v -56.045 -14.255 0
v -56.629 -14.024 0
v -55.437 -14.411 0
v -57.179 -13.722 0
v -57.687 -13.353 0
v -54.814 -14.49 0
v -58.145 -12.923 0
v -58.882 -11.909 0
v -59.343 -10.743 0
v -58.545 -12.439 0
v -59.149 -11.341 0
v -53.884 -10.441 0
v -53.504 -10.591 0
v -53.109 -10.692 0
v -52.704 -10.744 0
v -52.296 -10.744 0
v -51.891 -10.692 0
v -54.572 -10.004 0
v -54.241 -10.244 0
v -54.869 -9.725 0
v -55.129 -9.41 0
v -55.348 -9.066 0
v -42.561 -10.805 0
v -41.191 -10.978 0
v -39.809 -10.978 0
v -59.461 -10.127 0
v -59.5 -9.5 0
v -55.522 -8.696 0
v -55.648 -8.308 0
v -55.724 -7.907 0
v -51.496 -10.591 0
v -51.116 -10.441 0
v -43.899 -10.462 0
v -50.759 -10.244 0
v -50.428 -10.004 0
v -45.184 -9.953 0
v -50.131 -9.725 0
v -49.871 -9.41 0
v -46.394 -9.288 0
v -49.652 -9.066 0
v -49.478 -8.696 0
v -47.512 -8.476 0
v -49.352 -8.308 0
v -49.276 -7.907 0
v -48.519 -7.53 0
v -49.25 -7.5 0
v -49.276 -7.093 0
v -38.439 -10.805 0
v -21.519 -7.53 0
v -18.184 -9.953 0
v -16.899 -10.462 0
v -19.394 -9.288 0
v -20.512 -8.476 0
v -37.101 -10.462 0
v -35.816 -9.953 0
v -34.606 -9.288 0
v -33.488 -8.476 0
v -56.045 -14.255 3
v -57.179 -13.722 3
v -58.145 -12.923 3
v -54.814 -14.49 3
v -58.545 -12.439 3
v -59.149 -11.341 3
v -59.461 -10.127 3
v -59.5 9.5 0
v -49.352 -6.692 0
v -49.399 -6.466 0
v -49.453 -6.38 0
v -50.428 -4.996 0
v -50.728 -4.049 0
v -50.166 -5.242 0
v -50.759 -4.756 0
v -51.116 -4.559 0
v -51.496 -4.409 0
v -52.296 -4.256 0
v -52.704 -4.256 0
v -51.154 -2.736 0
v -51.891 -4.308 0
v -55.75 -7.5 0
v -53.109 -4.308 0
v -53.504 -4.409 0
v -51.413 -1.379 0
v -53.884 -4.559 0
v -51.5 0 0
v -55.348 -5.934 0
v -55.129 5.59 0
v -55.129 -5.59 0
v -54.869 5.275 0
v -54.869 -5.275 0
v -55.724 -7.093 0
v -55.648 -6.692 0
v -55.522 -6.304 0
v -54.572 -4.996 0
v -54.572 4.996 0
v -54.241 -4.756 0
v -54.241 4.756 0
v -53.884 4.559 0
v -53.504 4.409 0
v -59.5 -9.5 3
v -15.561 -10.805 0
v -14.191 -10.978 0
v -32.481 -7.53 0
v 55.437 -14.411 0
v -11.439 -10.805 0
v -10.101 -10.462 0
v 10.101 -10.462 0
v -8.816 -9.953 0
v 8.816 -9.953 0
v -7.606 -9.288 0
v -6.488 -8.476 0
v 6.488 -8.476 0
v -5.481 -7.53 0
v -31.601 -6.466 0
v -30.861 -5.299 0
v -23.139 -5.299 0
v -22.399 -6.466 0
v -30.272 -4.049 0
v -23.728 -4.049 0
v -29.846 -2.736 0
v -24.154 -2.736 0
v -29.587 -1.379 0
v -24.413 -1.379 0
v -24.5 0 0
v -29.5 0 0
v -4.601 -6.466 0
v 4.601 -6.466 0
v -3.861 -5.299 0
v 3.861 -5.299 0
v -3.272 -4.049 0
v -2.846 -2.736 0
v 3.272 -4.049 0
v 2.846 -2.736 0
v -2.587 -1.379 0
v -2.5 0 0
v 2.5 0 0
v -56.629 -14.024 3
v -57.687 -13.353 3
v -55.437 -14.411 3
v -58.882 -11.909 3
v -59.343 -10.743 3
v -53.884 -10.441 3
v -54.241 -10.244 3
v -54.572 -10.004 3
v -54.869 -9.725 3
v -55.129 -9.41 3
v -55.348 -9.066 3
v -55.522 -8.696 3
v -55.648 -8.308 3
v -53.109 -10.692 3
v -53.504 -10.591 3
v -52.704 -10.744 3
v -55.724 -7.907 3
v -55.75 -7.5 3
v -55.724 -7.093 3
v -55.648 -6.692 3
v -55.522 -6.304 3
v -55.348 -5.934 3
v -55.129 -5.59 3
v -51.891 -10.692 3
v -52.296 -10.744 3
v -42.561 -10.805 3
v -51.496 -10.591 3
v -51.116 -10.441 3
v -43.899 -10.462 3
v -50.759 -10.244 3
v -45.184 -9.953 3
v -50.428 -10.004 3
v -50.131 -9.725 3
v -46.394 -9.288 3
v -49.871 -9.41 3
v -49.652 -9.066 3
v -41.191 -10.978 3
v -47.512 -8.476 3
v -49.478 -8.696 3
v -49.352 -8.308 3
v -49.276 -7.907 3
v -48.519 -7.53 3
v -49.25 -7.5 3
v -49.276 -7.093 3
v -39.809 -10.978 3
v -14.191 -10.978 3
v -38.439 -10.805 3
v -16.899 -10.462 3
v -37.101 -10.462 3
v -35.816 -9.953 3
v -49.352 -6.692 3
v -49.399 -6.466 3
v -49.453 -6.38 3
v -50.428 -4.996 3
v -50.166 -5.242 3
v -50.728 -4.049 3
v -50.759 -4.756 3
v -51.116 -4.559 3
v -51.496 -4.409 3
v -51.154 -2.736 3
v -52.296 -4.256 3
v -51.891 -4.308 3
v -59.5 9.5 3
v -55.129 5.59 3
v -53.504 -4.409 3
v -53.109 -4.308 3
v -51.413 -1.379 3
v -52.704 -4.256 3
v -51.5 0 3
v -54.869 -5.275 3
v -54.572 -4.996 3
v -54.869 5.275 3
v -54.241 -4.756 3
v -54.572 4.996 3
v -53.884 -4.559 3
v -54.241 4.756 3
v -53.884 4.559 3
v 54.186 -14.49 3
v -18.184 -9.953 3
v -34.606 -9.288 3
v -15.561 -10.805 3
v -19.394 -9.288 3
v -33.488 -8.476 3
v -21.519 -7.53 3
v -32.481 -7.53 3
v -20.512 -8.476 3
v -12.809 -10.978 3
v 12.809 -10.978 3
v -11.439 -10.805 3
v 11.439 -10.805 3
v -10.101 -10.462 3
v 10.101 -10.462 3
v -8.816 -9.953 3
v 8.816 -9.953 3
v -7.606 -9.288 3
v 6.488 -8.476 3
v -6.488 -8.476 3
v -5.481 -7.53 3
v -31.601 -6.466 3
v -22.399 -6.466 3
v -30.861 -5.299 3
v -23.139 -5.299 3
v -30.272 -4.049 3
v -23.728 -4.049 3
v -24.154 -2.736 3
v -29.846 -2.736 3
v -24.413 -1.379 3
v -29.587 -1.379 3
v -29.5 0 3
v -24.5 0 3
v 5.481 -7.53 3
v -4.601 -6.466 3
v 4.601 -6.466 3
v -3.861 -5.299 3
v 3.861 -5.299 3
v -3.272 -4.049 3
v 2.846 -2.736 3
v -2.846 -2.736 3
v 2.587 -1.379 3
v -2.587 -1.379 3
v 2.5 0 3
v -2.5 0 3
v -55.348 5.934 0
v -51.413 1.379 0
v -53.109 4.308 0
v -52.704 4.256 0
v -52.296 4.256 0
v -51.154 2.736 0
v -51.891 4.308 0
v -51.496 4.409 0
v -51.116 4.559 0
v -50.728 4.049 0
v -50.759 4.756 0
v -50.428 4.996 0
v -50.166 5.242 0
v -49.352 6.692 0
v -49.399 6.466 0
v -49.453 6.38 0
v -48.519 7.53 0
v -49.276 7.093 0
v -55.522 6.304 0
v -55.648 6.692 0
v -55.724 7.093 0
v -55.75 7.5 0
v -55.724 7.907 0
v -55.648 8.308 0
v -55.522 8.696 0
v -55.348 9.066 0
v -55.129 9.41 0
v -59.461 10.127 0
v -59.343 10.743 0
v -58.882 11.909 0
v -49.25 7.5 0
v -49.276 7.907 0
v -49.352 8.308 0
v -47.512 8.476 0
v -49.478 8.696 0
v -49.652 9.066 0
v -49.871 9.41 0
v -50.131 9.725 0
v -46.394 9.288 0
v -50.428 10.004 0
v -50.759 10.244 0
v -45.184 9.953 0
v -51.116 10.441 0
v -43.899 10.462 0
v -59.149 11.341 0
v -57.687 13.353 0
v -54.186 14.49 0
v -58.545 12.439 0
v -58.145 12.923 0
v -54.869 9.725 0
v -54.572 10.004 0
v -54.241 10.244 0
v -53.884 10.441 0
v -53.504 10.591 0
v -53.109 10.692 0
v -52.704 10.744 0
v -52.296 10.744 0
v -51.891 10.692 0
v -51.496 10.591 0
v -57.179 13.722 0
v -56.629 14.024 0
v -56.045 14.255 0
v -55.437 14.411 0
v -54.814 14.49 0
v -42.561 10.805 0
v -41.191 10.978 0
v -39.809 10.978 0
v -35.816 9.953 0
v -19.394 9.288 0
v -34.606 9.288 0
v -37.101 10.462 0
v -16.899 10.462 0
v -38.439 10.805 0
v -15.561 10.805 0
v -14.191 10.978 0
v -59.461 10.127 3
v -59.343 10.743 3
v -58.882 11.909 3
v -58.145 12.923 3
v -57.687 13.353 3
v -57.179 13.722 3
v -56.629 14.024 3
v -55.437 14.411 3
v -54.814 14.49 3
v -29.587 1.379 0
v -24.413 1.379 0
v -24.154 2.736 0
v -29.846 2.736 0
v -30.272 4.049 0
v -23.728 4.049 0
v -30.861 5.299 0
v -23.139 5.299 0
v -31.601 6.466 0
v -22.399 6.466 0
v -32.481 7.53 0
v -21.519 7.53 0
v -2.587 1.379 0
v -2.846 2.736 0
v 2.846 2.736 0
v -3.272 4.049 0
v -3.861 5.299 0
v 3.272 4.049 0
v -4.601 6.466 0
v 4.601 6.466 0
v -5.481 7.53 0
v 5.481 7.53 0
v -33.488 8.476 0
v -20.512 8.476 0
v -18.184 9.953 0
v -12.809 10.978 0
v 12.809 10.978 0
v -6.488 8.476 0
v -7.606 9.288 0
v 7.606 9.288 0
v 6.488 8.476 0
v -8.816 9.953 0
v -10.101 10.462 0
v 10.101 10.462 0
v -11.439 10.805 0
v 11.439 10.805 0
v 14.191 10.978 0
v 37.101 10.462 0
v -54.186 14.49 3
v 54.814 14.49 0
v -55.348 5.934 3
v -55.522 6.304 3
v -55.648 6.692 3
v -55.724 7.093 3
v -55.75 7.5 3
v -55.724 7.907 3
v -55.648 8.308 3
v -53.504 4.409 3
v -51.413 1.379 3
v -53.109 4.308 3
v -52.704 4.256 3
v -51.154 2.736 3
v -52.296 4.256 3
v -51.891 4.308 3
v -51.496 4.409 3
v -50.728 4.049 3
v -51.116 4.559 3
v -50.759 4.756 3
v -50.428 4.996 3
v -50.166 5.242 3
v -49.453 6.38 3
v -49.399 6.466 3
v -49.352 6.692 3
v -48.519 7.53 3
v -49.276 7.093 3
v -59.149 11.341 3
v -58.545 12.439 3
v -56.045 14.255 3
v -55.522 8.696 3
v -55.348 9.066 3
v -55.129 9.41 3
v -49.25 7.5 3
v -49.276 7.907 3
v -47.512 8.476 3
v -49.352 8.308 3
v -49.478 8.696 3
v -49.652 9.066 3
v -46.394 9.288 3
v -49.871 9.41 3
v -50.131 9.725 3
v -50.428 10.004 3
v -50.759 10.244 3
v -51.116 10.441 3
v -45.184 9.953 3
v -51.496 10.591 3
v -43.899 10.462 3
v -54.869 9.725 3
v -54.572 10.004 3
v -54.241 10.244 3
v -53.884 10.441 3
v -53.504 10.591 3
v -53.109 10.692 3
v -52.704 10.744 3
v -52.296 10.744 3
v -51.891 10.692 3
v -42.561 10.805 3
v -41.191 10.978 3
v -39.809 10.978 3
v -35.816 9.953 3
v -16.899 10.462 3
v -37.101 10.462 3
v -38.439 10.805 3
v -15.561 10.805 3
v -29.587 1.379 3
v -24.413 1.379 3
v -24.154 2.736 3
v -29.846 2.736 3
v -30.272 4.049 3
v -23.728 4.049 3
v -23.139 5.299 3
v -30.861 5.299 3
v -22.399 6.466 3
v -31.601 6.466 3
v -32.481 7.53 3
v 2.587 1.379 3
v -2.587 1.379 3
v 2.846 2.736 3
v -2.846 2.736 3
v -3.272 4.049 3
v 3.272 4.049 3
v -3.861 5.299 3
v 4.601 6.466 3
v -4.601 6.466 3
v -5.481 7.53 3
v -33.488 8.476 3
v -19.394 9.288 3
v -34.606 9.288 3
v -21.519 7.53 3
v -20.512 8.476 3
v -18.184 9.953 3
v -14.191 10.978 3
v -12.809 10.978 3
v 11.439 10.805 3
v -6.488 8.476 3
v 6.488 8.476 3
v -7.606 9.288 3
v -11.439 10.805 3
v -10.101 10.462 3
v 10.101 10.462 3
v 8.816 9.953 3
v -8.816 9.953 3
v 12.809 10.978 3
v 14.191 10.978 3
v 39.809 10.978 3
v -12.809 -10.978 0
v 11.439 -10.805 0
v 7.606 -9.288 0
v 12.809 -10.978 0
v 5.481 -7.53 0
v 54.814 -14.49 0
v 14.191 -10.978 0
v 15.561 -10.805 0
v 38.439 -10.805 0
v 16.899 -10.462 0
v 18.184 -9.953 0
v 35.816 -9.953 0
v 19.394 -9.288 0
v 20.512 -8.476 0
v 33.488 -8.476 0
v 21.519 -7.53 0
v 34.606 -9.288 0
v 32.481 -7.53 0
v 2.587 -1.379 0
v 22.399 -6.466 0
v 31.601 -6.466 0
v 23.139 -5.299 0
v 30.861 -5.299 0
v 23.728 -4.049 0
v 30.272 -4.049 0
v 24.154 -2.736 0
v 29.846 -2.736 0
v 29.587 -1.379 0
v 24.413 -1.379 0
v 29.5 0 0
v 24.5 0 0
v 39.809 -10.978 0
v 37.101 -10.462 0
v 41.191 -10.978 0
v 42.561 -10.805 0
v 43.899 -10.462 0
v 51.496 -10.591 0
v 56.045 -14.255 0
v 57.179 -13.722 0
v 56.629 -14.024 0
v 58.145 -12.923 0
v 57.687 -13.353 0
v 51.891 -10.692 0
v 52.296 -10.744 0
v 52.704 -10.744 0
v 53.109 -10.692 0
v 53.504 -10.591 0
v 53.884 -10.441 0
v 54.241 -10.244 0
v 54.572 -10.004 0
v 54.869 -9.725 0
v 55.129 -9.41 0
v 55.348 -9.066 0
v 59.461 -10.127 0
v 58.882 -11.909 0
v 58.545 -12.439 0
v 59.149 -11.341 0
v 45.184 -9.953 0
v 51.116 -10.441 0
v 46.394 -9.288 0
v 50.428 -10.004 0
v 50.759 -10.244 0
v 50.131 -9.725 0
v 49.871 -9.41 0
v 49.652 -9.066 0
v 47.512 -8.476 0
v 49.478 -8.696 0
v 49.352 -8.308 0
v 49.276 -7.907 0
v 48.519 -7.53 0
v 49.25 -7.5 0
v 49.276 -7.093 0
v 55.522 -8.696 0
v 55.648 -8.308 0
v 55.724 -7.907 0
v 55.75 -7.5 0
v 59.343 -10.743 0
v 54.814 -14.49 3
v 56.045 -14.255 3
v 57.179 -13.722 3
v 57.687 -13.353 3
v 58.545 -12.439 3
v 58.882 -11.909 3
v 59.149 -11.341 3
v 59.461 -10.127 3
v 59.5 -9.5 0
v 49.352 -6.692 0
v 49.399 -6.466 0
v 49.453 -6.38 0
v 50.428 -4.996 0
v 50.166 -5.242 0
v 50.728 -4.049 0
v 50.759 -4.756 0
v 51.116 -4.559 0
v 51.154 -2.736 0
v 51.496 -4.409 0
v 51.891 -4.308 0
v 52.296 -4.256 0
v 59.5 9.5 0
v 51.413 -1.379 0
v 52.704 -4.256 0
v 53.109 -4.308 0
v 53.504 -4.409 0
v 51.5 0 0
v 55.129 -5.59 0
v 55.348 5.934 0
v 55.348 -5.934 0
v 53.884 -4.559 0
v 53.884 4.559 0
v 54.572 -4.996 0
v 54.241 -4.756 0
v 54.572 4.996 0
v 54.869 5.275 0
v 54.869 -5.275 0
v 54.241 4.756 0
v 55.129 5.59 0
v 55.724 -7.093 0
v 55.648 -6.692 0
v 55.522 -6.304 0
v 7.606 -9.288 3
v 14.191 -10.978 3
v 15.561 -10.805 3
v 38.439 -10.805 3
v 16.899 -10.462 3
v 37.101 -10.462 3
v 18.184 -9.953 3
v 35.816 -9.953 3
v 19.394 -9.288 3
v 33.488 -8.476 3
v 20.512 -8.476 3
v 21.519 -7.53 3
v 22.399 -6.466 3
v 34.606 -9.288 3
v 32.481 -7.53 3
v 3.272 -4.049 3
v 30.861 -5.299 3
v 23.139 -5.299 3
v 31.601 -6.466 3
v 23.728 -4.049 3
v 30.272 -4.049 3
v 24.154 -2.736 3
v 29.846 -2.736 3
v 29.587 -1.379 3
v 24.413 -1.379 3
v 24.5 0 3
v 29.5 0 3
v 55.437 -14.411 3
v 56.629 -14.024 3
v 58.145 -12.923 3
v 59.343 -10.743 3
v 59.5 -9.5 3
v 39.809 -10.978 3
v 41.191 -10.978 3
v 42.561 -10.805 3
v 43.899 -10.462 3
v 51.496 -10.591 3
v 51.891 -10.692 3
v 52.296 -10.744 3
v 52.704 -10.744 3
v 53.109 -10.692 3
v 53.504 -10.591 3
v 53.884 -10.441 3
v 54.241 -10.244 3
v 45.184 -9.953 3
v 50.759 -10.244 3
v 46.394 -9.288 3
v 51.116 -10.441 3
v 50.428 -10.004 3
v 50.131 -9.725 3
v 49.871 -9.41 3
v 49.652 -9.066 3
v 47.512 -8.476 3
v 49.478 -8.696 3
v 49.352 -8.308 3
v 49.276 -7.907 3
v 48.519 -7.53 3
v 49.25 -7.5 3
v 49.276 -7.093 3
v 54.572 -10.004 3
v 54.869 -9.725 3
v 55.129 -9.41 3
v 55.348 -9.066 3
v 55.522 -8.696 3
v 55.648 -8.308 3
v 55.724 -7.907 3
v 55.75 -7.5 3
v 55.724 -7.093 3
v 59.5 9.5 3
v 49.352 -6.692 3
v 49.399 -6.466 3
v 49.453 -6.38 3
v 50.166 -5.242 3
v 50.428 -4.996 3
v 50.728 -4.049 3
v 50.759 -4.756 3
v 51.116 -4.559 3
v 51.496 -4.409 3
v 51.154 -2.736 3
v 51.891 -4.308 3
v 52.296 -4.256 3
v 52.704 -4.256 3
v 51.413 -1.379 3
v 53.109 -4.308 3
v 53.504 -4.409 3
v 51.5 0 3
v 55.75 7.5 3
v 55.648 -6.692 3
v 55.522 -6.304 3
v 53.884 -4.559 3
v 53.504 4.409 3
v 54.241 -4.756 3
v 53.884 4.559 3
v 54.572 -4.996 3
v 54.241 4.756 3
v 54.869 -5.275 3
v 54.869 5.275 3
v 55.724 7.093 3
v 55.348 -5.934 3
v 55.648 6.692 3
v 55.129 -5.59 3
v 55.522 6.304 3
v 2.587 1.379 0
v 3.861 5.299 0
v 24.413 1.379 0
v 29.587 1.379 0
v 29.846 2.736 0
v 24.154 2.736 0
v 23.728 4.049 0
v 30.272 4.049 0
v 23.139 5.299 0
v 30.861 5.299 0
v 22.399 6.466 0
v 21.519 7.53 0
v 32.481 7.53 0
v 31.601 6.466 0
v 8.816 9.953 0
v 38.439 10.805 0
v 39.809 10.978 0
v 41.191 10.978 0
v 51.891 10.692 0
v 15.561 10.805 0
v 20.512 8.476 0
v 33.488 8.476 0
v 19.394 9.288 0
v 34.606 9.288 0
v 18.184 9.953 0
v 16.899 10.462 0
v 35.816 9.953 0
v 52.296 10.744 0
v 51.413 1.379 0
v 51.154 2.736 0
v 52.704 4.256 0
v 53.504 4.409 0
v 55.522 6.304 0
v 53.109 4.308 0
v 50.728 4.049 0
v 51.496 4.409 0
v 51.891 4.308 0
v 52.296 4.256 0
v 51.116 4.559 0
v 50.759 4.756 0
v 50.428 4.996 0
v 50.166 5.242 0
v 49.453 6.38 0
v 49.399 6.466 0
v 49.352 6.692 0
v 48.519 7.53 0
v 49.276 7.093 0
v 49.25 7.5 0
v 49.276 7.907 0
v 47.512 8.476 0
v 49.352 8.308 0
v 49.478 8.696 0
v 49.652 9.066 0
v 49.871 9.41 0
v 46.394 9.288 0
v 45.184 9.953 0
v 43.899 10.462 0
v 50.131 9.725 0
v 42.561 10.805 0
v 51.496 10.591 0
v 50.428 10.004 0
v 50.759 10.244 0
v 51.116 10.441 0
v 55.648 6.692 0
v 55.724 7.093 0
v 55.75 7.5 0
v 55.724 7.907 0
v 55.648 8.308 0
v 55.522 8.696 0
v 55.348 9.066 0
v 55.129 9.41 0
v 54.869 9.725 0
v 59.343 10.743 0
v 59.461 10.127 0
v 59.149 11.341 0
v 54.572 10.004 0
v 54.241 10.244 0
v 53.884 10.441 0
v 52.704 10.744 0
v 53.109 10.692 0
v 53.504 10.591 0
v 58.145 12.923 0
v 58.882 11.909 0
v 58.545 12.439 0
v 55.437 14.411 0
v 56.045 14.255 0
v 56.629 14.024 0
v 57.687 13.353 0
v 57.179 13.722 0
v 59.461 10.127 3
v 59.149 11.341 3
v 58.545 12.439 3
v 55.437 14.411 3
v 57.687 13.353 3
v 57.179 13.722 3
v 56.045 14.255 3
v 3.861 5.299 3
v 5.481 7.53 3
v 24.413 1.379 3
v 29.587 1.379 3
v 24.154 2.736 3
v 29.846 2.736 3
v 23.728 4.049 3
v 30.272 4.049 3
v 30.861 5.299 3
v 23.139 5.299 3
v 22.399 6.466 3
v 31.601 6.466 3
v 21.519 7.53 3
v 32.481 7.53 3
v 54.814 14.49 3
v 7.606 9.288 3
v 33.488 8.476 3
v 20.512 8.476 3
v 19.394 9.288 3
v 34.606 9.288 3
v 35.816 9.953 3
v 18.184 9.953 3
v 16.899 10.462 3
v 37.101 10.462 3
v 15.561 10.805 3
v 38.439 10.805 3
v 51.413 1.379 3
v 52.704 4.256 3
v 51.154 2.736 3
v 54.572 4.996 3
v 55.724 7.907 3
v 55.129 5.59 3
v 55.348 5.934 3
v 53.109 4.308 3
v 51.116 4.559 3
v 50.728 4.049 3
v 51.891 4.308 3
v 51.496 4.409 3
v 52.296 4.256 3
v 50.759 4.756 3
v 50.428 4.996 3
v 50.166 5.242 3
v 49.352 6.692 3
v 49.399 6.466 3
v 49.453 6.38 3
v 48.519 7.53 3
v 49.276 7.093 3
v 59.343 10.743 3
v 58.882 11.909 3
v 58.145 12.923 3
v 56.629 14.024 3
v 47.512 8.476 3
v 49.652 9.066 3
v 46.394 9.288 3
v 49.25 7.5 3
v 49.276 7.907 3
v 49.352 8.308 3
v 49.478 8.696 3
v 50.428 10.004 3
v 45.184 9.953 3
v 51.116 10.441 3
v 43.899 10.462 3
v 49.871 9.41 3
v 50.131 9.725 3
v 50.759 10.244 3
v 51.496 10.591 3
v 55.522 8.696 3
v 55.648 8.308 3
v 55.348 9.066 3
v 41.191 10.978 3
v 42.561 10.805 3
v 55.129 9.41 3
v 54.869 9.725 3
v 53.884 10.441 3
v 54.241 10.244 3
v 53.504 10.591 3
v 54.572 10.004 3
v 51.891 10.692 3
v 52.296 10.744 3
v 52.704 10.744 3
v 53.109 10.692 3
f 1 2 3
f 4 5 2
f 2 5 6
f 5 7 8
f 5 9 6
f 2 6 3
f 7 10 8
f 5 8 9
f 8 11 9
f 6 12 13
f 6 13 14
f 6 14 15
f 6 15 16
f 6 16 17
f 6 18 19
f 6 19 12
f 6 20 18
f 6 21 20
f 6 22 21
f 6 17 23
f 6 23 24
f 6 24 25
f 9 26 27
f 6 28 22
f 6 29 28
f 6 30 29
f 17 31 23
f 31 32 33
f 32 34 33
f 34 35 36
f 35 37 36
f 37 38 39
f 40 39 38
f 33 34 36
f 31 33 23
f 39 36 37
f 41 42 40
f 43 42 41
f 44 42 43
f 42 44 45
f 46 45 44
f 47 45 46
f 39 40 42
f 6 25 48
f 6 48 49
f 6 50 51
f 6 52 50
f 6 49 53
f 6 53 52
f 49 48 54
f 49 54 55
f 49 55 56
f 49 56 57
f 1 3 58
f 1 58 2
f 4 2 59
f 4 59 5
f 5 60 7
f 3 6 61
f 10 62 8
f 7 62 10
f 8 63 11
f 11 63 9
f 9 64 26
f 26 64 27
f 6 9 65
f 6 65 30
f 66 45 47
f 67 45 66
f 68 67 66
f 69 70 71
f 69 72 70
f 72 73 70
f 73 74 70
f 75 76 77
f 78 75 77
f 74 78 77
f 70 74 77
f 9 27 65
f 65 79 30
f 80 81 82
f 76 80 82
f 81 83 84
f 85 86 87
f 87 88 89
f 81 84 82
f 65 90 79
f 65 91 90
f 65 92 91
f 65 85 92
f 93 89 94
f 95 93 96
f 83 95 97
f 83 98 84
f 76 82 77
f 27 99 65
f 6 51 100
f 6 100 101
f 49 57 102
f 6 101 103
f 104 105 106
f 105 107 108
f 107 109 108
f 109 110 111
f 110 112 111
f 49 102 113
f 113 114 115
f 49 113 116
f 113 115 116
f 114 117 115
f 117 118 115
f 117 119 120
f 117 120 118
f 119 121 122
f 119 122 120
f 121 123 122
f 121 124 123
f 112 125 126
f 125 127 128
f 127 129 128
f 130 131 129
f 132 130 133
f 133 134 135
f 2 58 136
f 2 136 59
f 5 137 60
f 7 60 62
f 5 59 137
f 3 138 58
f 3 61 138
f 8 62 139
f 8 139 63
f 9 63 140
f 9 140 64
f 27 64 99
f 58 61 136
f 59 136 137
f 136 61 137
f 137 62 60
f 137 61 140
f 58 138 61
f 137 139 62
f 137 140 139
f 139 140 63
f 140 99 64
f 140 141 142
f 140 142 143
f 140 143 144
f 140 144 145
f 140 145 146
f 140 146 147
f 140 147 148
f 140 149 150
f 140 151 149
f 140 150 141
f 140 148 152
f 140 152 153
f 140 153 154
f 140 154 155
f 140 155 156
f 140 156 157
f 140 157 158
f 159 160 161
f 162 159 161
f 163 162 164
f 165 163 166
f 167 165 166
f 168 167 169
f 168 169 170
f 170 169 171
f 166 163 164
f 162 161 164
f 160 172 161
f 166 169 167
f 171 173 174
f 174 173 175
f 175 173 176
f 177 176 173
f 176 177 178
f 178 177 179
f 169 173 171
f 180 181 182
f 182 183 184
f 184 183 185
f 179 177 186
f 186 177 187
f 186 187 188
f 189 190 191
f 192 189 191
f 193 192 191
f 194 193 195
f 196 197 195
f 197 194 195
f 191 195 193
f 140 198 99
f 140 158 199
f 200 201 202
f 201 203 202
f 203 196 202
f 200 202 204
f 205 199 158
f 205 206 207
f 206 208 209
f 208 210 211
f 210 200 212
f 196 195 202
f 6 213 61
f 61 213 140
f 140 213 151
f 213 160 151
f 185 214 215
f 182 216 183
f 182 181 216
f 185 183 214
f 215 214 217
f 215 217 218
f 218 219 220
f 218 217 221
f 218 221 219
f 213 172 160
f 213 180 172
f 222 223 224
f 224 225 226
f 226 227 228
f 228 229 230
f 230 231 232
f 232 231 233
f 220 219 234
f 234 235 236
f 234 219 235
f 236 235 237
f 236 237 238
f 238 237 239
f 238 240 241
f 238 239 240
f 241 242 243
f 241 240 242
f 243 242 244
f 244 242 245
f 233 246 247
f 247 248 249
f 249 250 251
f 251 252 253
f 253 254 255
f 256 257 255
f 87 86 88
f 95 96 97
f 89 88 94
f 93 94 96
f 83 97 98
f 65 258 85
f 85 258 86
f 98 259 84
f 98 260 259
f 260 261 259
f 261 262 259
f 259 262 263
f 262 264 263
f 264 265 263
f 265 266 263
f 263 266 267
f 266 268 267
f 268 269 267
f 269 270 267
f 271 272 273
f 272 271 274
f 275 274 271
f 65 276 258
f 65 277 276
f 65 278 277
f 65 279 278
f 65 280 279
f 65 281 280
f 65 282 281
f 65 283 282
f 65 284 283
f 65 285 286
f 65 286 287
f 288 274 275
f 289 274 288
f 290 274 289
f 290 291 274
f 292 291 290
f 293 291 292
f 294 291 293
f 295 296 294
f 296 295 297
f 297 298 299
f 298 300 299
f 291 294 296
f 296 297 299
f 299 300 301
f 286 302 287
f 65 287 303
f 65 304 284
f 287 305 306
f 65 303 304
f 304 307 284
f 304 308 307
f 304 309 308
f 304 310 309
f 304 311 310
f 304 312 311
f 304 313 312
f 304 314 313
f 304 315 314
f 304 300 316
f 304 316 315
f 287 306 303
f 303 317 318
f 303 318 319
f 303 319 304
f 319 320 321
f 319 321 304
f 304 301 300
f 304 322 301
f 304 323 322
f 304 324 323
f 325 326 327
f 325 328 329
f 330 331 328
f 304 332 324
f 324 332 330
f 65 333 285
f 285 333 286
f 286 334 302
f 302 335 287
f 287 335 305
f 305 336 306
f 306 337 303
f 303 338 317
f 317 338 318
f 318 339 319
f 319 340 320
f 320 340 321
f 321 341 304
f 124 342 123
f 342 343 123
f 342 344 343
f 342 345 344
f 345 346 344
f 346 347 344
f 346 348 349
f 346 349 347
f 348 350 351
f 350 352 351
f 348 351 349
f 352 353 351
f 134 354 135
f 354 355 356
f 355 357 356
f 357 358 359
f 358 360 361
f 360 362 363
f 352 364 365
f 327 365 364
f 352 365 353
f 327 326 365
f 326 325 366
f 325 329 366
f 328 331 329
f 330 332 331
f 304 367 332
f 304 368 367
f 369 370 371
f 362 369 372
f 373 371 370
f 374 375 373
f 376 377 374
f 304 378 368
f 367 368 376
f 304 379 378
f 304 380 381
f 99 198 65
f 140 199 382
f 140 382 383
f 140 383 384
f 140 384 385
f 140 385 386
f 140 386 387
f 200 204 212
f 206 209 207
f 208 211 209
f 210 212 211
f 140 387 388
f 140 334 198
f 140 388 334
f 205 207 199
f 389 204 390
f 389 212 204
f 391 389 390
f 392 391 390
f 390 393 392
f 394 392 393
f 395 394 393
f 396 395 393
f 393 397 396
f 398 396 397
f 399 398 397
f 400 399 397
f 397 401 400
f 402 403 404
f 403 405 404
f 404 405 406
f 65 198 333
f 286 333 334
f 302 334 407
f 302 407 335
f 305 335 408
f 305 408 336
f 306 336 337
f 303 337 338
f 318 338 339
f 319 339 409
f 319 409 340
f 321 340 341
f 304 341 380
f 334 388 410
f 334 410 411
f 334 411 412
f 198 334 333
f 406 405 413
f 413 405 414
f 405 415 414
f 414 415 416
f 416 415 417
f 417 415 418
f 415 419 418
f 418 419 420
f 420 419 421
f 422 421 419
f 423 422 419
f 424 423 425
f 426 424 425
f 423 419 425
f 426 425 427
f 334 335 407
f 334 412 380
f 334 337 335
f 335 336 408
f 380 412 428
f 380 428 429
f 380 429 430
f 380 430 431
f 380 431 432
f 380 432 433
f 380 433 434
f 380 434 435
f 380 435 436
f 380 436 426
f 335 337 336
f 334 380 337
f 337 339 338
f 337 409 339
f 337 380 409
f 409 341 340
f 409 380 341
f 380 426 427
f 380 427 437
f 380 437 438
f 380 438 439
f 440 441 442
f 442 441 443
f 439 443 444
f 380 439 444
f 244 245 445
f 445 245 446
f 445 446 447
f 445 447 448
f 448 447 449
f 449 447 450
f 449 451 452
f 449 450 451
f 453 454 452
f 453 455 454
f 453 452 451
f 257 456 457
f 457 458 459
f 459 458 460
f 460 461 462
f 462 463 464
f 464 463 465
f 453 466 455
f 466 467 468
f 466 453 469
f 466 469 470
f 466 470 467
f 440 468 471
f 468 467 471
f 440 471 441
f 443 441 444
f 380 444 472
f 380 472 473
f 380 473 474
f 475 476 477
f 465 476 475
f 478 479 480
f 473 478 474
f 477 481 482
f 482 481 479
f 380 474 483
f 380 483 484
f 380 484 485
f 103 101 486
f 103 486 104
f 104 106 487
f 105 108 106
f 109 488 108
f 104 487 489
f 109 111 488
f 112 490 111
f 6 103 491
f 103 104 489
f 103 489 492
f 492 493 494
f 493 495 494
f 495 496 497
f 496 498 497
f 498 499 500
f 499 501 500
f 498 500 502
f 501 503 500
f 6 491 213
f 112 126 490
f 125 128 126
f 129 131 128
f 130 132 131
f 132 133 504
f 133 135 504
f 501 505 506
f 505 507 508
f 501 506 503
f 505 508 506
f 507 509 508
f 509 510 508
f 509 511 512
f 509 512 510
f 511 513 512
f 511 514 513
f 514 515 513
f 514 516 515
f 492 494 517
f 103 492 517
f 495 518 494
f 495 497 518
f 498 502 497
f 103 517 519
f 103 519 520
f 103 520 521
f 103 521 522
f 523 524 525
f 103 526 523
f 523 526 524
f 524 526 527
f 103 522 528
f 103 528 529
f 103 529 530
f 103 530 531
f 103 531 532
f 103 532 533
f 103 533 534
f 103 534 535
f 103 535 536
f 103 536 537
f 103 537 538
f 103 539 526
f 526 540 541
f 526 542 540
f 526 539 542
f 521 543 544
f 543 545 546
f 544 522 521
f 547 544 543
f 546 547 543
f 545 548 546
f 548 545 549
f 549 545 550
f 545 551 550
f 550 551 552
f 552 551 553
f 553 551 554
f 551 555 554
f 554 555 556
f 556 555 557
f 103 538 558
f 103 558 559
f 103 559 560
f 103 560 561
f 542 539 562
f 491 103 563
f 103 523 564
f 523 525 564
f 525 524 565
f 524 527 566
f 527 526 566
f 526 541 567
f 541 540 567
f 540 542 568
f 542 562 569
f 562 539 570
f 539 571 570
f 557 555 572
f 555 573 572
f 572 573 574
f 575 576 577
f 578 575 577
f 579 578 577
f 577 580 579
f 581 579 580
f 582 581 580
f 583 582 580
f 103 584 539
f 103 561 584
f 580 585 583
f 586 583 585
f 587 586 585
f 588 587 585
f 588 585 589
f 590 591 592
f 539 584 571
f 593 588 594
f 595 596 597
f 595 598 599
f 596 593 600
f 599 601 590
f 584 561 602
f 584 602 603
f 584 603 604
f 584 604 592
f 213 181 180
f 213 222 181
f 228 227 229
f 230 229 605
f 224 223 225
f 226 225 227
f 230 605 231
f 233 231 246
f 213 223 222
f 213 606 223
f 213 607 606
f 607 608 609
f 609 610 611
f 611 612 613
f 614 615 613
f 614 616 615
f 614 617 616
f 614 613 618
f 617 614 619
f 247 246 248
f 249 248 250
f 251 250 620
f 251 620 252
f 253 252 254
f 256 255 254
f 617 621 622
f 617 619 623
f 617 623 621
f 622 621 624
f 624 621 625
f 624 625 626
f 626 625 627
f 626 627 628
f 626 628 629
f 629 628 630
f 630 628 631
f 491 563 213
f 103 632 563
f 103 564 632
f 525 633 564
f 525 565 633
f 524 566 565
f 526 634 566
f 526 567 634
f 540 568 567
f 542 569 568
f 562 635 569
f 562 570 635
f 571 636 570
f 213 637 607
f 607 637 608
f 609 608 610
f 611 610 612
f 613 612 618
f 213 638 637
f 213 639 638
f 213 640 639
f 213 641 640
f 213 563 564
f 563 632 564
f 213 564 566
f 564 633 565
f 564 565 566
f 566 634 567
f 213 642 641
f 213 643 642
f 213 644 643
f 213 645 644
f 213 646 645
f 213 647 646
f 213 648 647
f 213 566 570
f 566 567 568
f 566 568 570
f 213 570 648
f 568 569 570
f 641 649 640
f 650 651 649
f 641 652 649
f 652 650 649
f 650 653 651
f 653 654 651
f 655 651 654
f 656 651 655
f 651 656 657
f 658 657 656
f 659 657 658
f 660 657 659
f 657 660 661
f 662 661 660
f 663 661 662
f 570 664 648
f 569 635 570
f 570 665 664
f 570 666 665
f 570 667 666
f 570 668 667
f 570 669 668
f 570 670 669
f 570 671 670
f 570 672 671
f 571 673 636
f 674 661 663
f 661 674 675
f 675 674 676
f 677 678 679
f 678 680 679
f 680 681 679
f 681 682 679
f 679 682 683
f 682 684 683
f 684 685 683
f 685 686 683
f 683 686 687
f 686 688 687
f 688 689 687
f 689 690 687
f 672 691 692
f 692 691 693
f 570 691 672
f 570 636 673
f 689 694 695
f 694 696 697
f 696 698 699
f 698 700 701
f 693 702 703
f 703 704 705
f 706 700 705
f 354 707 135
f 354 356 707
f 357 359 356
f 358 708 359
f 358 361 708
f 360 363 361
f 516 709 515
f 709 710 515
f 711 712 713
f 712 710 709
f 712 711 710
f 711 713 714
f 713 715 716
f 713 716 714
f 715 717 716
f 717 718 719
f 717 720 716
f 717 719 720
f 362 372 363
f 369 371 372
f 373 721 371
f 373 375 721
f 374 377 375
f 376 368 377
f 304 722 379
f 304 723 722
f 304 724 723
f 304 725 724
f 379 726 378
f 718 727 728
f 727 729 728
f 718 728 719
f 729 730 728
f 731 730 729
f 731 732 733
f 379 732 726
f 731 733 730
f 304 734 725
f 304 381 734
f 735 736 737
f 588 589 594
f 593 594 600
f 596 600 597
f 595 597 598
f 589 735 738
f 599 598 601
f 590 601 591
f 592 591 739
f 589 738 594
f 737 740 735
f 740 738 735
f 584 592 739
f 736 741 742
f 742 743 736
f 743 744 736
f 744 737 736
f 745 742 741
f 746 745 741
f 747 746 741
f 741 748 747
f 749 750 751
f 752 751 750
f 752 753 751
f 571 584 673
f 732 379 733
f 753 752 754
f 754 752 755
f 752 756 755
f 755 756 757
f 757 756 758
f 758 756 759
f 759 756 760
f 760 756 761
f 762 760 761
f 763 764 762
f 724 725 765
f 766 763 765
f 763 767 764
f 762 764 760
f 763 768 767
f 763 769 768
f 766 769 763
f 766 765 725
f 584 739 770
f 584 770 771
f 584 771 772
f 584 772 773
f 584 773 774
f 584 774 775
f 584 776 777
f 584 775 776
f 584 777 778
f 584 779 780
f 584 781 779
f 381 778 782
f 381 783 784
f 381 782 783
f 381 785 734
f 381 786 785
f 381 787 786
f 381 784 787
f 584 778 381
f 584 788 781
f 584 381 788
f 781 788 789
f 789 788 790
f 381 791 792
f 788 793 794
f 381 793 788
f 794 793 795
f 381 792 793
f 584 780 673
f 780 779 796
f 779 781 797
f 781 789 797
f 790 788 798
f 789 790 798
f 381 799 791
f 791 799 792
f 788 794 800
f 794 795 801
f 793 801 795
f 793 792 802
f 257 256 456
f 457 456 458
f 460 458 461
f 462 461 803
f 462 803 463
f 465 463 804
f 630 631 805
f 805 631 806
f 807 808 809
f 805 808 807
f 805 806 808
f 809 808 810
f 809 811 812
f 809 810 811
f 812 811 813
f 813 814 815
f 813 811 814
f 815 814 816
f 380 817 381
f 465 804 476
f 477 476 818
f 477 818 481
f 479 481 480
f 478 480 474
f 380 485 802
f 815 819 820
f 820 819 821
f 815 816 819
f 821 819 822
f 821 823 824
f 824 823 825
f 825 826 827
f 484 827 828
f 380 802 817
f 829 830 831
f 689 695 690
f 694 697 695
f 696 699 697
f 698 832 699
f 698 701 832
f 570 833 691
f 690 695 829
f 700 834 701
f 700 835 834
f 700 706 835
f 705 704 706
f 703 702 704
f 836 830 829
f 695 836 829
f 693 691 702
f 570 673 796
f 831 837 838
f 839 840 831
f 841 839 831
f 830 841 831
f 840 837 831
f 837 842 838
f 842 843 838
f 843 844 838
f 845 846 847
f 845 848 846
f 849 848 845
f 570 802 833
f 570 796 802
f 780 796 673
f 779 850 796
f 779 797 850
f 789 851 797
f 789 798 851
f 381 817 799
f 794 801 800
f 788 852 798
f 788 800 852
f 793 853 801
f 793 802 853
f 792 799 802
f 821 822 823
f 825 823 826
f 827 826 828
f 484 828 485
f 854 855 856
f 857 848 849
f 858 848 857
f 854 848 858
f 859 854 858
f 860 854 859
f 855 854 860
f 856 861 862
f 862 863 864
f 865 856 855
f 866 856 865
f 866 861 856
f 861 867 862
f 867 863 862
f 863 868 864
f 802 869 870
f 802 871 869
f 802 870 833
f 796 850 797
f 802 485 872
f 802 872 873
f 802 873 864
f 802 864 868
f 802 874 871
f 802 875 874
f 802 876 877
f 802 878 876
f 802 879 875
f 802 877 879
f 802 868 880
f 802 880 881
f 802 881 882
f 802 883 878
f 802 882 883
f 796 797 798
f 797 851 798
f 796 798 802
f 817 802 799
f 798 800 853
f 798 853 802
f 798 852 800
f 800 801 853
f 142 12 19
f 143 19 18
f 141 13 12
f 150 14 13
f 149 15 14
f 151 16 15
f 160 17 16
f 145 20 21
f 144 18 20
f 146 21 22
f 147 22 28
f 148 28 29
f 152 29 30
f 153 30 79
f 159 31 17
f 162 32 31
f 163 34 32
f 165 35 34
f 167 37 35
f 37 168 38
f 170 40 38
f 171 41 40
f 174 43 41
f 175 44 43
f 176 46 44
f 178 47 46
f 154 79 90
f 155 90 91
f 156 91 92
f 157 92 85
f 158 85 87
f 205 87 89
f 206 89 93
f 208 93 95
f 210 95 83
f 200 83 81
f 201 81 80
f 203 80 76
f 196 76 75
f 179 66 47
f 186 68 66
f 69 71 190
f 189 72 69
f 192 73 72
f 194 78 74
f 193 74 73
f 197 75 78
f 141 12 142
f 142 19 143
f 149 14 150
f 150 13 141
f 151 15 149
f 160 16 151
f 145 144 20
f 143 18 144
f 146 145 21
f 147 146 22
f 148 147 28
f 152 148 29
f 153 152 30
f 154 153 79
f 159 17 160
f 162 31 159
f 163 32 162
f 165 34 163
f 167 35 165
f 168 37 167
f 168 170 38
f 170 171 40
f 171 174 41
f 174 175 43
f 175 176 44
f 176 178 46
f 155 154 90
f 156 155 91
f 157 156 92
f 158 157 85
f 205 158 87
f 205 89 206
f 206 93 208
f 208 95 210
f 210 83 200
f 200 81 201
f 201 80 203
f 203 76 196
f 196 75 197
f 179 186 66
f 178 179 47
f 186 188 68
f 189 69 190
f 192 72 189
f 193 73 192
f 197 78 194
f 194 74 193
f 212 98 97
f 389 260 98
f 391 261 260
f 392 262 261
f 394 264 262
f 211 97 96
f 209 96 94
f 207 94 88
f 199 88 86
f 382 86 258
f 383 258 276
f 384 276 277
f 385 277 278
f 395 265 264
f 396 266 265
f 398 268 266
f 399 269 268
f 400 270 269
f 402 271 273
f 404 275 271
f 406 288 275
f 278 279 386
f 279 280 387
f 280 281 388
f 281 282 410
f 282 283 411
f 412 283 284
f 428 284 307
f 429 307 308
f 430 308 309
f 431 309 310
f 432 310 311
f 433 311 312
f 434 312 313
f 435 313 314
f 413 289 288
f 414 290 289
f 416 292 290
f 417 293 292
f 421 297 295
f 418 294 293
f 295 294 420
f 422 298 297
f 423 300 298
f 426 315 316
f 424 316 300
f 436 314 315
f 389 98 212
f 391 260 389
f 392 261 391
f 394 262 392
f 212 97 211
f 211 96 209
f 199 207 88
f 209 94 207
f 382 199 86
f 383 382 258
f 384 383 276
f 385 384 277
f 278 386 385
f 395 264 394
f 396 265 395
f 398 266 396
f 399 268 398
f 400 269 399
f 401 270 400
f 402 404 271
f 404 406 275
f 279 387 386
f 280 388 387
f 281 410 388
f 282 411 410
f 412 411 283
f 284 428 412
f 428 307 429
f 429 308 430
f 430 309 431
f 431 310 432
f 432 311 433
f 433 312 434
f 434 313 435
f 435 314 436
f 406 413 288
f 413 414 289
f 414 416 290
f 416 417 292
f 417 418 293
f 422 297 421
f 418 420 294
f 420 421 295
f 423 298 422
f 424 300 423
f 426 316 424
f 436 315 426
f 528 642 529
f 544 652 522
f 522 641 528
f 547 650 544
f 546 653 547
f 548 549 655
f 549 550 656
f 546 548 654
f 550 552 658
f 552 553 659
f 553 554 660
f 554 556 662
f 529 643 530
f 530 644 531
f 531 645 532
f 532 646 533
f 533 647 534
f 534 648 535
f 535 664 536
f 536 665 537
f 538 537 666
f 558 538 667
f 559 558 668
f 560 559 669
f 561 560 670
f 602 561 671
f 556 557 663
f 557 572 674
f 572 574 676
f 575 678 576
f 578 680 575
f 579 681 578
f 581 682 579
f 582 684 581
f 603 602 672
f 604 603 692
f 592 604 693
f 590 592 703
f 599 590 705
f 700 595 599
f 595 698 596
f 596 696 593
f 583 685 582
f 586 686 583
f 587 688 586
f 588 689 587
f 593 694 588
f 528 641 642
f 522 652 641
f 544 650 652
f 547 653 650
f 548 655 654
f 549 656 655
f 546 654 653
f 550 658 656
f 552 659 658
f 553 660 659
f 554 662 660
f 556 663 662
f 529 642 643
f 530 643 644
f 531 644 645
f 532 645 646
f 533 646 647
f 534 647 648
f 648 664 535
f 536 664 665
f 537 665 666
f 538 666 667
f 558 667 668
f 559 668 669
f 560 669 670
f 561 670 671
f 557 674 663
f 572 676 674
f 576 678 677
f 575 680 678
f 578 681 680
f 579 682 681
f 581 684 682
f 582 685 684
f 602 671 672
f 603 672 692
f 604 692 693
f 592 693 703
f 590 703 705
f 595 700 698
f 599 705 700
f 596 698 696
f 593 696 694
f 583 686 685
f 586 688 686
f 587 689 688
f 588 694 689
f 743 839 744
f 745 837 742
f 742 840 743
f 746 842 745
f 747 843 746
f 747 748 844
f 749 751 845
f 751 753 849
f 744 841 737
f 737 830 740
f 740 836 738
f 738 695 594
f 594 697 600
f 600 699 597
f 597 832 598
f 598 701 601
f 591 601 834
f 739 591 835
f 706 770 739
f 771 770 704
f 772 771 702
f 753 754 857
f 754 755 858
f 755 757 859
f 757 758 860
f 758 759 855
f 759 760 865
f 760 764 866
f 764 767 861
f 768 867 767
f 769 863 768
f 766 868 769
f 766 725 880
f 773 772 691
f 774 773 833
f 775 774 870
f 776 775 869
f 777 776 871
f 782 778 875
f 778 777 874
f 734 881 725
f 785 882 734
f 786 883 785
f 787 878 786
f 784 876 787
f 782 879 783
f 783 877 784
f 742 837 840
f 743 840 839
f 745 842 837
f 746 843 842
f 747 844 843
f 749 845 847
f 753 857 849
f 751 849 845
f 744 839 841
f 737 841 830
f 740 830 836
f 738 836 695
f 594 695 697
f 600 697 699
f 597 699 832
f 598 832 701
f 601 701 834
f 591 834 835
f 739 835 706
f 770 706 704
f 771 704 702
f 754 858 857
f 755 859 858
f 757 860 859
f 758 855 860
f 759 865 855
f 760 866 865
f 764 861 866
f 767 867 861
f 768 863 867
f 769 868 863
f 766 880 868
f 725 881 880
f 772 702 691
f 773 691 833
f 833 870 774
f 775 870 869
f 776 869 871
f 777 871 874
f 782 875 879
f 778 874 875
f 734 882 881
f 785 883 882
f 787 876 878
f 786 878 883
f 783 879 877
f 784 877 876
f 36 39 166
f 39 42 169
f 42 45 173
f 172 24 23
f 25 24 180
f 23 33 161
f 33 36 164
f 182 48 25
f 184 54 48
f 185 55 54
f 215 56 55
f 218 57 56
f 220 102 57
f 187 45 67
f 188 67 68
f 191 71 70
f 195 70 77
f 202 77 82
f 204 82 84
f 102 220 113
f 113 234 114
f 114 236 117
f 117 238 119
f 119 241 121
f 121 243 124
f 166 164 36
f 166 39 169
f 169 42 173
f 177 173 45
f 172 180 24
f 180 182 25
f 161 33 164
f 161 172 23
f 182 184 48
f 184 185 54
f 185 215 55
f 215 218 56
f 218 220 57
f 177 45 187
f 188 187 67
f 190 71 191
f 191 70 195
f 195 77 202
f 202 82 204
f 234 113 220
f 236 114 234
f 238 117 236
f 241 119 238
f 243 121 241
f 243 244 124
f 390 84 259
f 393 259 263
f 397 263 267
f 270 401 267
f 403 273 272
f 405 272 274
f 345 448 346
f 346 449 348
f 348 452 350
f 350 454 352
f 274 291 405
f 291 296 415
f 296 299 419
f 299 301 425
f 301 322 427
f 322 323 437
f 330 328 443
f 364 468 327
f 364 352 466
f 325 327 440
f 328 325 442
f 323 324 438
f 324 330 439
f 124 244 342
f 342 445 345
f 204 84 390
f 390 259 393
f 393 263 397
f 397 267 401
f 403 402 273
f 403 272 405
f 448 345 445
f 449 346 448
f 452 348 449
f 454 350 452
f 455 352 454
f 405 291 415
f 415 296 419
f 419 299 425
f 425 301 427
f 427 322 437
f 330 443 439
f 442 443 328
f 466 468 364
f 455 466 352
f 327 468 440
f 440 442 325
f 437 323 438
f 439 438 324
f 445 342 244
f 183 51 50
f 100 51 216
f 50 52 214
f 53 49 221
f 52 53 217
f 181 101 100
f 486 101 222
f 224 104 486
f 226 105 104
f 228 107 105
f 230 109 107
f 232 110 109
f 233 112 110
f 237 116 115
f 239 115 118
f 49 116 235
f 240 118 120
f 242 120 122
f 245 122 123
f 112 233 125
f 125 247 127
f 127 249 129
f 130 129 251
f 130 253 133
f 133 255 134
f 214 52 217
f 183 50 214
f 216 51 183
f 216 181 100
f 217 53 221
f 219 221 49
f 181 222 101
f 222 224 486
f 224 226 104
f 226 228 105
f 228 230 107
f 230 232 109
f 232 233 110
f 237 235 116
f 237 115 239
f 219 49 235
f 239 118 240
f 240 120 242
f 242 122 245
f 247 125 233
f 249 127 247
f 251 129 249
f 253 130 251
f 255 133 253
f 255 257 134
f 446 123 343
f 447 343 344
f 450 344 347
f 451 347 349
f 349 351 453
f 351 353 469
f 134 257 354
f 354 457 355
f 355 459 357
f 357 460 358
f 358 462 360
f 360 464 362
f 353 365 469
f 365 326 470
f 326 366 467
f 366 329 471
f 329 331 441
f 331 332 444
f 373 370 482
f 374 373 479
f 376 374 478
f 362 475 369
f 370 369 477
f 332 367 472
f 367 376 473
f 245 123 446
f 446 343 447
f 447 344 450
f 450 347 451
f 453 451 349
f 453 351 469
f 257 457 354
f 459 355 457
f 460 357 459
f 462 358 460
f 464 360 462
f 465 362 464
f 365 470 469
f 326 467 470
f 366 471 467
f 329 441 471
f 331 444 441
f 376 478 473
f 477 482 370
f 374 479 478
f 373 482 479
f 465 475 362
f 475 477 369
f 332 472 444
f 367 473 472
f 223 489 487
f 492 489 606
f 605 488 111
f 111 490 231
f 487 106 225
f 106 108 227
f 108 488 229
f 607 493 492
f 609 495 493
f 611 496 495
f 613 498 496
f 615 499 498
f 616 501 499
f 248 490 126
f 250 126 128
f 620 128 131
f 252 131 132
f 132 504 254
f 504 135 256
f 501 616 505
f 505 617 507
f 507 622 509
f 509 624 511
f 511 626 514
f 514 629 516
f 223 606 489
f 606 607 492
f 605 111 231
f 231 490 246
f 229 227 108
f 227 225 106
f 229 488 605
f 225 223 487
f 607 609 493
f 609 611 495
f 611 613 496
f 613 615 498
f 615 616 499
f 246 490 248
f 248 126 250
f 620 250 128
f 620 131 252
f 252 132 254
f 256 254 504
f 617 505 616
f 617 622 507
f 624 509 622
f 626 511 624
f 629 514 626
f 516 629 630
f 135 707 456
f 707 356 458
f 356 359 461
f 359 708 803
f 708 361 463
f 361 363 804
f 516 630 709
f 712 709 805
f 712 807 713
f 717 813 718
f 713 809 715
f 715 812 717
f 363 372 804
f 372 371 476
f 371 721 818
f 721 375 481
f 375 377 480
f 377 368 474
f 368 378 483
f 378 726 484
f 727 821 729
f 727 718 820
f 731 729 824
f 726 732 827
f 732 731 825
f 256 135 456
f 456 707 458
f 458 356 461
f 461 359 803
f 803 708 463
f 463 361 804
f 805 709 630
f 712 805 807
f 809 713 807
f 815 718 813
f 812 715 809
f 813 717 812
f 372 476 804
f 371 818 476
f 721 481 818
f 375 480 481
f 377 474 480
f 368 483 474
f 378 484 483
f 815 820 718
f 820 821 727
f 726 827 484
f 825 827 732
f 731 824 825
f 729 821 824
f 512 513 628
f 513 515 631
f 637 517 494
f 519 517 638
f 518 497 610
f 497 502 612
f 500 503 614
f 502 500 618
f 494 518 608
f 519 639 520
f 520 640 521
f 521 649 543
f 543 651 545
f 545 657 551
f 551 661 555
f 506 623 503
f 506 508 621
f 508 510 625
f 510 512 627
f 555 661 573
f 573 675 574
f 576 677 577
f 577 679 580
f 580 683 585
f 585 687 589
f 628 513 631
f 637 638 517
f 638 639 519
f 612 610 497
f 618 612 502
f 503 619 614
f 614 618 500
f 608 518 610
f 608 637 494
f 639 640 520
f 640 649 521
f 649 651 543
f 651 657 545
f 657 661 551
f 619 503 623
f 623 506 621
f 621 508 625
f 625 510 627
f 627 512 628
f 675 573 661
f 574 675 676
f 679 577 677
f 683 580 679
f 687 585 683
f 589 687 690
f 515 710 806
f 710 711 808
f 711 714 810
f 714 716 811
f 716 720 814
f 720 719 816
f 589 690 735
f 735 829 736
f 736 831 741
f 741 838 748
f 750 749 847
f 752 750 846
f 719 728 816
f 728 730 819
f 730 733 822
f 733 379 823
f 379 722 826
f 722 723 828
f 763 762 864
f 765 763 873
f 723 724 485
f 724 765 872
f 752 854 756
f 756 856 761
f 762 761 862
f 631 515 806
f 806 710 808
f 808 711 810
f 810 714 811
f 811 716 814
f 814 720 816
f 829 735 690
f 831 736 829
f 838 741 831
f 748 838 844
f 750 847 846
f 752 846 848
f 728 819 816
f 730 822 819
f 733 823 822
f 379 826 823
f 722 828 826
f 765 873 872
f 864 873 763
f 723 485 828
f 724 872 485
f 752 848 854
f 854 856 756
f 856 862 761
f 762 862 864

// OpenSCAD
$fn = 50;

difference() {
	union() {
		hull() {
			translate(v = [-54.5, 9.5, 0]) {
				cylinder(h = 3, r = 5);
			}
			translate(v = [54.5, 9.5, 0]) {
				cylinder(h = 3, r = 5);
			}
			translate(v = [-54.5, -9.5, 0]) {
				cylinder(h = 3, r = 5);
			}
			translate(v = [54.5, -9.5, 0]) {
				cylinder(h = 3, r = 5);
			}
		}
	}
	union() {
		translate(v = [-52.5, -7.5, -100.0]) {
			cylinder(h = 200, r = 3.25);
		}
		translate(v = [-52.5, 7.5, -100.0]) {
			cylinder(h = 200, r = 3.25);
		}
		translate(v = [52.5, -7.5, -100.0]) {
			cylinder(h = 200, r = 3.25);
		}
		translate(v = [52.5, 7.5, -100.0]) {
			cylinder(h = 200, r = 3.25);
		}
		translate(v = [-52.5, -7.5, -100.0]) {
			cylinder(h = 200, r = 1.8);
		}
		translate(v = [-52.5, 7.5, -100.0]) {
			cylinder(h = 200, r = 1.8);
		}
		translate(v = [52.5, -7.5, -100.0]) {
			cylinder(h = 200, r = 1.8);
		}
		translate(v = [52.5, 7.5, -100.0]) {
			cylinder(h = 200, r = 1.8);
		}
		translate(v = [-40.5, 0, 0.0]) {
			cylinder(h = 3, r = 11.0);
		}
		translate(v = [-13.5, 0, 0.0]) {
			cylinder(h = 3, r = 11.0);
		}
		translate(v = [13.5, 0, 0.0]) {
			cylinder(h = 3, r = 11.0);
		}
		translate(v = [40.5, 0, 0.0]) {
			cylinder(h = 3, r = 11.0);
		}
	}
}
